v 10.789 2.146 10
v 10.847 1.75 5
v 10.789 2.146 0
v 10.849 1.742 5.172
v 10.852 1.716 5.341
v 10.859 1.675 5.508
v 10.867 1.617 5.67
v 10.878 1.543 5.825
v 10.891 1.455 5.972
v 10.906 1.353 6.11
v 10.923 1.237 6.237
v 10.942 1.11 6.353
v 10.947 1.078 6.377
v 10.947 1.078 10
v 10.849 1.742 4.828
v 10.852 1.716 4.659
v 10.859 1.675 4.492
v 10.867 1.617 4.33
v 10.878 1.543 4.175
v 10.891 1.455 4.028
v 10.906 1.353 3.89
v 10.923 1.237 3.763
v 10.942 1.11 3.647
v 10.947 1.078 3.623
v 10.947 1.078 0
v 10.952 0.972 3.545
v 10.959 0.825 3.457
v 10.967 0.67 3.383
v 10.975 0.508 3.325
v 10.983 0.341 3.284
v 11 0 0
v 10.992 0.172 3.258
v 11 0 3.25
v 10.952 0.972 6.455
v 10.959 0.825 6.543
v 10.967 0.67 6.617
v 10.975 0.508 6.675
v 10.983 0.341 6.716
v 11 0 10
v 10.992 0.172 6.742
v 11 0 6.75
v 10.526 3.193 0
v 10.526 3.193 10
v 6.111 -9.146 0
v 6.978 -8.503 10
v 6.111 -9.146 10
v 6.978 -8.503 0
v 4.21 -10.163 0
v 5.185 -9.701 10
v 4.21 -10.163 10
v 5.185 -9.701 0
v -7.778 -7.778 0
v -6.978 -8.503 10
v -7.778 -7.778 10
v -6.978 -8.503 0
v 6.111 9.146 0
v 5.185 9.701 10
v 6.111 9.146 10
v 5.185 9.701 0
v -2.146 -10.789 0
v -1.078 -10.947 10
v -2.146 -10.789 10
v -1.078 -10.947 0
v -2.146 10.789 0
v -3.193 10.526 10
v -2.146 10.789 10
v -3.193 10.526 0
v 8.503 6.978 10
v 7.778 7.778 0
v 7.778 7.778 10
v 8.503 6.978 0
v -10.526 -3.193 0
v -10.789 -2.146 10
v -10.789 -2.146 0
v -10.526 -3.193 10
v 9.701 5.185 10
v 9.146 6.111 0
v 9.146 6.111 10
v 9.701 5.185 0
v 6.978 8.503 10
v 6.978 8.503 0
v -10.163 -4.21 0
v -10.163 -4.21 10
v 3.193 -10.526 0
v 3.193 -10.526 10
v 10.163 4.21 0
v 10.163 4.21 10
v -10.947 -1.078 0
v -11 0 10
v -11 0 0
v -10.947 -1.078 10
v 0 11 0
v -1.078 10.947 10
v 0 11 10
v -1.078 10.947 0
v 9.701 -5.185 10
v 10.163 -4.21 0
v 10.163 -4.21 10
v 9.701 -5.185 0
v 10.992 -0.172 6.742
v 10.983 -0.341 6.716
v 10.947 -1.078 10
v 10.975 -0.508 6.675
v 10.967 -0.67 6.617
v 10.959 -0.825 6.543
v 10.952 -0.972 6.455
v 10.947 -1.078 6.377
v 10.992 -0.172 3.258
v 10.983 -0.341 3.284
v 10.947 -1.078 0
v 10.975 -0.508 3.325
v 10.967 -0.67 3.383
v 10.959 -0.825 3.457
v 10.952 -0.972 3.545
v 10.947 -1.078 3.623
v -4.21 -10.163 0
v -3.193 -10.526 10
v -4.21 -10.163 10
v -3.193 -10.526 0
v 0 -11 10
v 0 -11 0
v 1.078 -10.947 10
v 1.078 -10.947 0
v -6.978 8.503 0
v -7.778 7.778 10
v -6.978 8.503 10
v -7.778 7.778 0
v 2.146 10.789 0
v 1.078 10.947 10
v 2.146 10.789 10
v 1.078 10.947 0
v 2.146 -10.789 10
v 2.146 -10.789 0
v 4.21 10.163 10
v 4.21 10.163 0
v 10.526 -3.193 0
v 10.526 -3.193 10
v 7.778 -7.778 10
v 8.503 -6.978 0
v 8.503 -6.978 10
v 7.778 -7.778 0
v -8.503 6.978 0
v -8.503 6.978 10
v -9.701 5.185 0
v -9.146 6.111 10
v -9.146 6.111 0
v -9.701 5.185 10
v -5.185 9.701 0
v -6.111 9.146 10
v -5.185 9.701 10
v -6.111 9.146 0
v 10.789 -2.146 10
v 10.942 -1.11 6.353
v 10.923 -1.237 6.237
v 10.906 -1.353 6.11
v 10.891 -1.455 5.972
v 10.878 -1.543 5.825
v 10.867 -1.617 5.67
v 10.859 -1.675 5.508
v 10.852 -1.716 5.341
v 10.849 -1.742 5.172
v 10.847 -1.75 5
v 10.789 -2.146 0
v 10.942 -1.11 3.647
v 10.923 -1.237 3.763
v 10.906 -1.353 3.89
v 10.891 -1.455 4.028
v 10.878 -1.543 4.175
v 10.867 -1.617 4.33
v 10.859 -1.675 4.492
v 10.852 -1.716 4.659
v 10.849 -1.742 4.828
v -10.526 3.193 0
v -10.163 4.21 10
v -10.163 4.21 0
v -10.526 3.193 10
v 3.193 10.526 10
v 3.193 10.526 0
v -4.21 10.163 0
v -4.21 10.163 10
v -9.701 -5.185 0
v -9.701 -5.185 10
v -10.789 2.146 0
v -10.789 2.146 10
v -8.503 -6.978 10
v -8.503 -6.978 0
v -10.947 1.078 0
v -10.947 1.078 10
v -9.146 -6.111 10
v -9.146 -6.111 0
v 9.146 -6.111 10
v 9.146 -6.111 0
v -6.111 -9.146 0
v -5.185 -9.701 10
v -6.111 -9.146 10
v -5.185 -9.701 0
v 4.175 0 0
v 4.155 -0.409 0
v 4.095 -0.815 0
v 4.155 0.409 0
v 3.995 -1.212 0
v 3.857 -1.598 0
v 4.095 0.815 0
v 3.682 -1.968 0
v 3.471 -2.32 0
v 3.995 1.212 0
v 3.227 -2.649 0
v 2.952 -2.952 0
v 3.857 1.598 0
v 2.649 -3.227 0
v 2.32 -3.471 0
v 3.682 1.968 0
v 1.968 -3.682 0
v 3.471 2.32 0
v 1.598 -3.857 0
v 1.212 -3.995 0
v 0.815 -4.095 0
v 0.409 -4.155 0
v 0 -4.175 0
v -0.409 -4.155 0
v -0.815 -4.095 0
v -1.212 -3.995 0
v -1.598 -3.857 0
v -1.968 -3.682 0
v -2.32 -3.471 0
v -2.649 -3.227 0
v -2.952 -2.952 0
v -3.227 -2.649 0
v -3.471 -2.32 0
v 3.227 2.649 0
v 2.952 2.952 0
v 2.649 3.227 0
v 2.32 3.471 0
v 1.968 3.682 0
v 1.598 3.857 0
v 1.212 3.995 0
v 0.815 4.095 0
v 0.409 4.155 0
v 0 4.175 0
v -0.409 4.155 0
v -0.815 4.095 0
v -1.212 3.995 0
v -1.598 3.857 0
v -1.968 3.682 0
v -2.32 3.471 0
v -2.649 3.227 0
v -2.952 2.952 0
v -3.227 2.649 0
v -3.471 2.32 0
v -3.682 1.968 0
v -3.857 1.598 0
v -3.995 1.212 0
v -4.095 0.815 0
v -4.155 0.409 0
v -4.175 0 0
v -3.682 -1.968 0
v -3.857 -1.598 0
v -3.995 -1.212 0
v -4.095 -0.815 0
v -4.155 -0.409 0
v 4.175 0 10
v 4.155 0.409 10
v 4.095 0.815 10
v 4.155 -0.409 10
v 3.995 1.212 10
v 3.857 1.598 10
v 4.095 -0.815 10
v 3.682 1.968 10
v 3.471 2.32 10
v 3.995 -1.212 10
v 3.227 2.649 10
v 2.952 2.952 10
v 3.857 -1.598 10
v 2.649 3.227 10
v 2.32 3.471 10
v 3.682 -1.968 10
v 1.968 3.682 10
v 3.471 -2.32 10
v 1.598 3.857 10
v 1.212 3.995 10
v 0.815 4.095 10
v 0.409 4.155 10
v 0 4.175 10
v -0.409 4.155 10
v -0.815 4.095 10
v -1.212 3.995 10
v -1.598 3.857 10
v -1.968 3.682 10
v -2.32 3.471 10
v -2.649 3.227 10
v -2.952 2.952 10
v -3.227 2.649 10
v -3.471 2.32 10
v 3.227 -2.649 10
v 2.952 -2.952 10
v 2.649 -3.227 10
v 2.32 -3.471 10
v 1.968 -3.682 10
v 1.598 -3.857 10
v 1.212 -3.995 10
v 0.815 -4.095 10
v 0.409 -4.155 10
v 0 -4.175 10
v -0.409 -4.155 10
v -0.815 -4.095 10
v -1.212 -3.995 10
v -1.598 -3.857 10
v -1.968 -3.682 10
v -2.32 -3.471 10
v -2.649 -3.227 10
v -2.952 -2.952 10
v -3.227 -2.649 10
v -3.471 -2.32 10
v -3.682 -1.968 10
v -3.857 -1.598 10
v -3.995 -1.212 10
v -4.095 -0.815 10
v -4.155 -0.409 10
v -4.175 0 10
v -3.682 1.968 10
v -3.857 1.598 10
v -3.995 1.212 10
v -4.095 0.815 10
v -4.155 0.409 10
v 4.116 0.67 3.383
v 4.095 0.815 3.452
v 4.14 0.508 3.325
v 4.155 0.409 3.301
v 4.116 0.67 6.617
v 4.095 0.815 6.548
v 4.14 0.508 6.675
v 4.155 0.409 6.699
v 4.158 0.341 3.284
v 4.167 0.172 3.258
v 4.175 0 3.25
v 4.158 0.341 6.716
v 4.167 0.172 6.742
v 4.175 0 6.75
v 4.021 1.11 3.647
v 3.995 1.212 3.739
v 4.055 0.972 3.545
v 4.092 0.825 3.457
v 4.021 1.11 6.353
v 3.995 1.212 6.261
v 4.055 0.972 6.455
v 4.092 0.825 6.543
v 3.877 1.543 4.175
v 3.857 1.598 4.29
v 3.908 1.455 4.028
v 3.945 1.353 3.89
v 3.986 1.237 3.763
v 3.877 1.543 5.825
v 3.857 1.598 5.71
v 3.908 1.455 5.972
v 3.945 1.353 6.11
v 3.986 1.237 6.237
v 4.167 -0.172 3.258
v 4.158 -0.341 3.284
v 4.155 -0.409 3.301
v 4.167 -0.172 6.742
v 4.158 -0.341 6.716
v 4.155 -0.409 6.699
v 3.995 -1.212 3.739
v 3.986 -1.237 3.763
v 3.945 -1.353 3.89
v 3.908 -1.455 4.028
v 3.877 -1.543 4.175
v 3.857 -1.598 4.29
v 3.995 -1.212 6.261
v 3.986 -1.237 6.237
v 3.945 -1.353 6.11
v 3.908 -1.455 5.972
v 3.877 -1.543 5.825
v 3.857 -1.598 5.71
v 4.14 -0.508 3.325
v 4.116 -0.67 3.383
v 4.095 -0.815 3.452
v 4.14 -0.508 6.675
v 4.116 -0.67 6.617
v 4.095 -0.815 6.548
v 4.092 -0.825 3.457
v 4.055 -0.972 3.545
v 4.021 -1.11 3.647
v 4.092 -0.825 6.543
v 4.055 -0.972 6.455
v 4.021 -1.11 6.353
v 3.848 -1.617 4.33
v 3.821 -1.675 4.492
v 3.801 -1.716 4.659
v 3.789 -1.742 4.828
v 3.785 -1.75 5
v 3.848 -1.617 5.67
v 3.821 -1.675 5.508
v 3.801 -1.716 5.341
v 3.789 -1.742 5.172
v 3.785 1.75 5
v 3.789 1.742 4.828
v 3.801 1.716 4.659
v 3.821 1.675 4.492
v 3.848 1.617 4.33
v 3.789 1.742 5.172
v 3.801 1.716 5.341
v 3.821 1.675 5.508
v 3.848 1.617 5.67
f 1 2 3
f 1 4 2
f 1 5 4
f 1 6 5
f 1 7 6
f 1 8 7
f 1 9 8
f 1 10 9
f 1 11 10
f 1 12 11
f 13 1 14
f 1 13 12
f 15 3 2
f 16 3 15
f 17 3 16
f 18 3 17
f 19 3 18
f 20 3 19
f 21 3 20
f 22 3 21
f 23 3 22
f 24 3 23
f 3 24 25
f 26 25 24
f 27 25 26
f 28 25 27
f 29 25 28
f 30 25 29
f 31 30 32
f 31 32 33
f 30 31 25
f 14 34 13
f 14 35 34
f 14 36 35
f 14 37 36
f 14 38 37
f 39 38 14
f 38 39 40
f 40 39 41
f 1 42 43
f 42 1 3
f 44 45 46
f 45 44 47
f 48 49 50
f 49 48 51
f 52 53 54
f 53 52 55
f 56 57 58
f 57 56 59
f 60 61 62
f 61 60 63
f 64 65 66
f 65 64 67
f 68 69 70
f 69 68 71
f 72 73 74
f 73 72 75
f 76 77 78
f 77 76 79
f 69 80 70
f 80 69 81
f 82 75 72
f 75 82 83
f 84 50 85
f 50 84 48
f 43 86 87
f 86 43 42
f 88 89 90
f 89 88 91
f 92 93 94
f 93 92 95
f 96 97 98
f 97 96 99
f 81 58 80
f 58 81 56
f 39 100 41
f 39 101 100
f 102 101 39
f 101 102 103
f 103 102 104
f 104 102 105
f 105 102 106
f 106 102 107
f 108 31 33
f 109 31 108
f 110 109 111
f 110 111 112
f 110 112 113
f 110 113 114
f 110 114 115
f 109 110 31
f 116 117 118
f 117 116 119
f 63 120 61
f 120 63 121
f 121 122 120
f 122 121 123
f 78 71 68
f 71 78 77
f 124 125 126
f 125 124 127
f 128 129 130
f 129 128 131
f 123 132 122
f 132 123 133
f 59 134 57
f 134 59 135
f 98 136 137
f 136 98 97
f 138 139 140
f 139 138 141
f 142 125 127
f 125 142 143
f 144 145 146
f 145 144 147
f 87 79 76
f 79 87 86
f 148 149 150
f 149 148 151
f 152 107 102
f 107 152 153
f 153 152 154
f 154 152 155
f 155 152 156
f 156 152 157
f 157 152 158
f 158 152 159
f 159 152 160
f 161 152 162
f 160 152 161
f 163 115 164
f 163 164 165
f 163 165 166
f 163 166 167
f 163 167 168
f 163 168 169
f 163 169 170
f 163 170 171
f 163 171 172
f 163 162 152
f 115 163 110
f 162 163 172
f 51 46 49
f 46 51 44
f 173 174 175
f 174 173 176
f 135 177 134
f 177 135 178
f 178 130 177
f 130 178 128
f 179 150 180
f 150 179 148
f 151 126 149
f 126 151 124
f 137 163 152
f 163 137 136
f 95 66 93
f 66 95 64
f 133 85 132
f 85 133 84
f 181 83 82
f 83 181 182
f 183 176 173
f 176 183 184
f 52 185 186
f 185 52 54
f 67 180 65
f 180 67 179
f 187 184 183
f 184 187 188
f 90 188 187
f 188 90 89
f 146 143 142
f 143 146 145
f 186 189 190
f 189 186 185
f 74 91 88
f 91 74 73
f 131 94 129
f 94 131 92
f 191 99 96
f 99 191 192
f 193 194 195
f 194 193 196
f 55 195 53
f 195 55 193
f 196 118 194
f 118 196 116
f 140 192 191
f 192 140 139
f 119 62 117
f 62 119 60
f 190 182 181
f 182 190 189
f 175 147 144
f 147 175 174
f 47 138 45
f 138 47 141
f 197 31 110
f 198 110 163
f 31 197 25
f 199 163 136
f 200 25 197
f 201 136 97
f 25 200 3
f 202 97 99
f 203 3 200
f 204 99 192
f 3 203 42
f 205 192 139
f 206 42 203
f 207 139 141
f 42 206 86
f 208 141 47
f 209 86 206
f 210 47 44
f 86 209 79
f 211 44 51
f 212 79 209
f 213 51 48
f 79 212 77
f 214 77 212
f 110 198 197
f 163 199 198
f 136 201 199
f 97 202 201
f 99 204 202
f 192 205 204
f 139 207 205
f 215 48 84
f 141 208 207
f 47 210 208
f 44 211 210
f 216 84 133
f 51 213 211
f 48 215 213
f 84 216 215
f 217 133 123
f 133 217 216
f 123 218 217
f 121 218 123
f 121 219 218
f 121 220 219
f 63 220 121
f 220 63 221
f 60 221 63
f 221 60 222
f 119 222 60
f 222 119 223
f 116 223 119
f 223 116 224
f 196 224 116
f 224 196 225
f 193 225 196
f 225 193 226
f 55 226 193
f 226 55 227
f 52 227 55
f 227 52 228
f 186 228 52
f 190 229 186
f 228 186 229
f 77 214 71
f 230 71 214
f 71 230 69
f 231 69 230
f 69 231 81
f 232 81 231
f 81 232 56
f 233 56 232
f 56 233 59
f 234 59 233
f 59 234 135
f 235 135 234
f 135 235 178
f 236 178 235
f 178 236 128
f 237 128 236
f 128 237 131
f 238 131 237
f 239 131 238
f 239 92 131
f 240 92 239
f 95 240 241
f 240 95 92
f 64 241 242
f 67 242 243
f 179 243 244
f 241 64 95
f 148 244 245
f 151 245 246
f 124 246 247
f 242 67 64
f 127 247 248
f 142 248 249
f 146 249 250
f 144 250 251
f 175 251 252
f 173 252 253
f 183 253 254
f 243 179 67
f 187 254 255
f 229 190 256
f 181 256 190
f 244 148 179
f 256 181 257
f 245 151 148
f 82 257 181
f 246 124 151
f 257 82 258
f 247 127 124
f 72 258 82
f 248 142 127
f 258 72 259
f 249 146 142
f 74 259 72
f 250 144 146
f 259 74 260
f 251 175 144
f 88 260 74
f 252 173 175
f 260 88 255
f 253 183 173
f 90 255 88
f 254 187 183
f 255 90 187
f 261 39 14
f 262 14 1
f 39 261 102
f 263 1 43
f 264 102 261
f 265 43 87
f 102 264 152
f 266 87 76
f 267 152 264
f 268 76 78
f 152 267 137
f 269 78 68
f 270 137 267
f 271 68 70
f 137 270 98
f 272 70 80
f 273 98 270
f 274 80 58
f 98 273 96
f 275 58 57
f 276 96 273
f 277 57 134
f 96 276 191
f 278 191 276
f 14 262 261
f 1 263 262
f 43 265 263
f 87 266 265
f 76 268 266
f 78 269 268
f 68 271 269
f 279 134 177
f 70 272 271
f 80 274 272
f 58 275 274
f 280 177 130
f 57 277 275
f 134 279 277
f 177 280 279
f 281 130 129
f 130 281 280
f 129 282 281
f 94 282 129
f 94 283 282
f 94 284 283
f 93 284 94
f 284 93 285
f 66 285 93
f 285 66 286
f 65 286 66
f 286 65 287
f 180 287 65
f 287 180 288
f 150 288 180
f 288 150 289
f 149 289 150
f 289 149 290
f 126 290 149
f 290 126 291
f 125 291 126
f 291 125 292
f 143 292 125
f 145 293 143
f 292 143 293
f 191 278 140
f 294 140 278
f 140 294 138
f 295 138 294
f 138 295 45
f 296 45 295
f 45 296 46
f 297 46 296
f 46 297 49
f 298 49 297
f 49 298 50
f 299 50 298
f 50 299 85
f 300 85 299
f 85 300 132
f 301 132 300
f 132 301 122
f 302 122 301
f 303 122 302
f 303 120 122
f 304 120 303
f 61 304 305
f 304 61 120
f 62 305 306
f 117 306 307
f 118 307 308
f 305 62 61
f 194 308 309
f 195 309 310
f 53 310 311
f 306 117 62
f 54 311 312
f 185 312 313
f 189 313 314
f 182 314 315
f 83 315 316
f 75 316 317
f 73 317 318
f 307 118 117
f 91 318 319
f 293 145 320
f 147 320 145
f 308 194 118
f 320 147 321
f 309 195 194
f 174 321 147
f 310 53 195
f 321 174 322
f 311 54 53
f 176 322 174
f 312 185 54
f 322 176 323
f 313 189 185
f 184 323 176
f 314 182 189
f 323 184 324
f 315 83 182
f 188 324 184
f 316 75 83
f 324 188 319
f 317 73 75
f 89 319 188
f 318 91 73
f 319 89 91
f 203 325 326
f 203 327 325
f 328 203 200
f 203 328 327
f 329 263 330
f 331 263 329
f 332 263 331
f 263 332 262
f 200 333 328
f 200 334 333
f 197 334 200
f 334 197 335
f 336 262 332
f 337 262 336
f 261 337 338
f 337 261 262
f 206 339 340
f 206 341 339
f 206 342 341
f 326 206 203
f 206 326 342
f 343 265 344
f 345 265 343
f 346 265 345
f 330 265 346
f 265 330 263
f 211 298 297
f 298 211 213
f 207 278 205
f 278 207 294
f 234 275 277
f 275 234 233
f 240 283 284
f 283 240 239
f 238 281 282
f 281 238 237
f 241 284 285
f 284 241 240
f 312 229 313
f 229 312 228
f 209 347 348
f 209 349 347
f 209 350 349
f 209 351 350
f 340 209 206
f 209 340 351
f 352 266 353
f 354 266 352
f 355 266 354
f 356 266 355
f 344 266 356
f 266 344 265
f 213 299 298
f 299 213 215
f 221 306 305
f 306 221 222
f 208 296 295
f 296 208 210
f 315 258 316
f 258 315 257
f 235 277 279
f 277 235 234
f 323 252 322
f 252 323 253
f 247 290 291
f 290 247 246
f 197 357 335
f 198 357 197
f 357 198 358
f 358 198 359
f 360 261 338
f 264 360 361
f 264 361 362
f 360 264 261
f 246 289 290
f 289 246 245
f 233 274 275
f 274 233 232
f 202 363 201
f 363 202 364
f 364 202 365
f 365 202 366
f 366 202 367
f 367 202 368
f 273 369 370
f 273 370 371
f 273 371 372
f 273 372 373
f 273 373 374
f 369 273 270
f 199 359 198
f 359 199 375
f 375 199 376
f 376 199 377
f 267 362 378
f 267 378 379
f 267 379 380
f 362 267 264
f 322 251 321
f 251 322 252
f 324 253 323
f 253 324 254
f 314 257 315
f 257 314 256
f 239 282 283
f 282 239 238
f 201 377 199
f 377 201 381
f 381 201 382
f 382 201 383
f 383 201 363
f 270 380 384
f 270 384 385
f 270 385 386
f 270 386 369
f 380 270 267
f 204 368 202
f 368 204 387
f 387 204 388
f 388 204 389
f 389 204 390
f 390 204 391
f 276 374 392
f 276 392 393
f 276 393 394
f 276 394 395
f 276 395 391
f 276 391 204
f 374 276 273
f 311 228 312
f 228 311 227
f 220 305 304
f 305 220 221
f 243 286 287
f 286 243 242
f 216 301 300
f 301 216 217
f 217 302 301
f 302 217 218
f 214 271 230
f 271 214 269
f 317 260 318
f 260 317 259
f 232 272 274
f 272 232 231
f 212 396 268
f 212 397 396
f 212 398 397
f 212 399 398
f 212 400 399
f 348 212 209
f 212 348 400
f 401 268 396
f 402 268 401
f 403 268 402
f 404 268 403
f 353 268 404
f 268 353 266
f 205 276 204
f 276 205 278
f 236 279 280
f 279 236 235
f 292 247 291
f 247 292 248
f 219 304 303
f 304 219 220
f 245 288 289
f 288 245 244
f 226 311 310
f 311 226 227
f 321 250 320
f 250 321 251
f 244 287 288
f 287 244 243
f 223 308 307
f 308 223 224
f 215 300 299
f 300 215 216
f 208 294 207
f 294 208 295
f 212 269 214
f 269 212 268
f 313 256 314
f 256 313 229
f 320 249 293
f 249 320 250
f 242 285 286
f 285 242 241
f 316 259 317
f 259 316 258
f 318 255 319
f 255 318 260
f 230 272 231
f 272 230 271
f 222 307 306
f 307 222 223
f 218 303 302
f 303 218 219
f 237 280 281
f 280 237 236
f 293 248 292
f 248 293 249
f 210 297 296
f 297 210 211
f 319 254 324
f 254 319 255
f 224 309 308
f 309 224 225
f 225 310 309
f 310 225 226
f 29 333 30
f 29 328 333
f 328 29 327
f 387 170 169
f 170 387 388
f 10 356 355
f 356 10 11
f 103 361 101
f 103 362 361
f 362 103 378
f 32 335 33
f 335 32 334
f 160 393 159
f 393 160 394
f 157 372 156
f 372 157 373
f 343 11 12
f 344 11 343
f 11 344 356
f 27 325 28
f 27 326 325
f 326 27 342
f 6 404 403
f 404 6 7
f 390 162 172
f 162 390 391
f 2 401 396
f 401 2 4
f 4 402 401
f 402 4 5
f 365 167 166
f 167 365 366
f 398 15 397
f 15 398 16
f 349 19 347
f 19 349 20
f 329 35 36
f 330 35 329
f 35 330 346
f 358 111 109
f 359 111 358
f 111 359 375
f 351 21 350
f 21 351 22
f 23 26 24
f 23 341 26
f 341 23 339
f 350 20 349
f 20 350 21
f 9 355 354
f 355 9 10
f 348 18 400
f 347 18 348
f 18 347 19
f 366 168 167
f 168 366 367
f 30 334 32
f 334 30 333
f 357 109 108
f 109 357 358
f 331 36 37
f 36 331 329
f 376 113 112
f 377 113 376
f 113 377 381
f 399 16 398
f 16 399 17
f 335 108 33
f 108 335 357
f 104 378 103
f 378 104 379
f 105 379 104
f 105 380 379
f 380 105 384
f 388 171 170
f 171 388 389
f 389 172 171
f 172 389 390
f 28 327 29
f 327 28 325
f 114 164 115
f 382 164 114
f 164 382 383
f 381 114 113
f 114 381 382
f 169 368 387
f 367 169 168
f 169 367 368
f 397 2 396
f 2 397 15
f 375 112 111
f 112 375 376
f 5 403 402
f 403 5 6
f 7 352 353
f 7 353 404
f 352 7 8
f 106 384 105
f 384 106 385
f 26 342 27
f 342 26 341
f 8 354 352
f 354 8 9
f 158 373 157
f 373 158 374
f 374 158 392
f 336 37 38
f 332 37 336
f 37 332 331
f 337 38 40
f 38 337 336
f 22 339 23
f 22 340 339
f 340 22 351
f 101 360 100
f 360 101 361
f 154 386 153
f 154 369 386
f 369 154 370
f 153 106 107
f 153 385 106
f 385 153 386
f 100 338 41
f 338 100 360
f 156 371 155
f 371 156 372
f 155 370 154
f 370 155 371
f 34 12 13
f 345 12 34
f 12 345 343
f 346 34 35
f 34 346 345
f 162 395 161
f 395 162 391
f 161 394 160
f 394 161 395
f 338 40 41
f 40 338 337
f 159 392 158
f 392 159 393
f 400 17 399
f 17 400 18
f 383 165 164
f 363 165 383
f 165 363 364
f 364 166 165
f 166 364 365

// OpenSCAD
// file: parameters.scad
// =============================================================================
// Gen-S Dual-rotor ULTRA-THIN AFPM — WOUND-AWARE parameters (HARD GATE)
// Primary challenger vs Gen-P. Target m2m ≤ 7.0 while magnet↔wound ≥ 0.80.
// =============================================================================

// --- Wire / wind budget (26 AWG, ~1 lb spool ≈ 390 m bare-equiv) --------------
wire_awg            = 26;
wire_od             = 0.45;     // insulated OD mm
turns               = 130;      // +10 vs Gen-P; extra goes radial
fill                = 0.70;
layers_per_face     = 2;        // axial layers proud of EACH flange
wind_build_axial    = layers_per_face * wire_od * fill;   // 0.63 mm
wind_build_radial   = 3 * wire_od * fill;                 // 0.945 mm (extra turns)

// --- Pancake former (bare STL) — thinner web/flange than Gen-P ---------------
coil_id_r           = 24.0;     // larger window vs Gen-P 26–54
coil_od_r           = 56.0;
span_deg            = 26.0;     // 12 stations × 30° pitch
former_web          = 2.2;      // thinner than Gen-P 2.6
flange_t            = 0.8;      // thinner than Gen-P 0.9
wall                = 1.2;
slot_w              = 2.4;
mount_hole          = 3.5;
tab_len             = 7.0;

former_bare_h       = former_web + 2 * flange_t;            // 3.8 mm
coil_envelope_h     = former_bare_h + 2 * wind_build_axial; // 5.06 mm

// --- Running clearance (magnet face → WOUND face) EACH side ------------------
run_clear           = 0.80;     // PASS ≥ 0.80 preferred
gap_spacer_h        = run_clear + wind_build_axial;         // 1.43 mm
m2m                 = coil_envelope_h + 2 * run_clear;      // 6.66 mm (≤7.0 vs Gen-P 7.26)

// --- Mid stator (12 pancakes 3φ; winds proud both faces) ---------------------
coil_stations       = 12;
bay_r_in            = coil_id_r - 2.0 - wind_build_radial;
bay_r_out           = coil_od_r + 2.0 + wind_build_radial;
bay_span            = span_deg + 4.0;
bay_offset          = 2.0;
stator_thick        = former_bare_h;                        // winds proud ±Z
stator_od           = 152.0;
shaft_clear_stator  = 36.0;
coil_mount_r        = 28.0;

// --- Rotors (×2) — 8×Ø20 + 24×Ø5 Halbach each face ---------------------------
large_pocket_d      = 20.3;
small_pocket_d      = 5.3;
pocket_h            = 5.2;
large_n             = 8;
R_large             = 50.0;
R_small_inner       = 38.0;
R_small_mid         = 50.0;
R_small_outer       = 62.0;
carrier_od          = 148.0;
carrier_thick       = 7.5;
hub_h               = 10.0;
hub_od              = 30.0;
rotor_b_offset_deg  = 22.5;

// --- Modular MAX interface (Gen-E family) ------------------------------------
shaft_bore          = 8.35;
bearing_d           = 21.85;
bearing_h           = 7.2;
m3_clear            = 3.5;
bolt_r_inner        = 36.0;
bolt_n_inner        = 6;
flange_bolt_r       = 72.0;
flange_bolt_n       = 6;
brace_r             = 68.0;
brace_d             = 4.3;
brace_n             = 4;

spacer_pad_od       = 14.0;
spacer_pad_id       = m3_clear;
endbell_od          = 152.0;
endbell_thick       = 8.0;
endbell_shaft_clear = 10.0;

$fn = 64;
// main file
// Gen-S shaft collar — print ×2–4
include <parameters.scad>;
$fn = 64;
od = 22; id = shaft_bore; h = 10; set_d = 3.5;
difference() {
    cylinder(d=od, h=h);
    translate([0, 0, -0.1]) cylinder(d=id, h=h + 0.2);
    translate([0, 0, h/2]) rotate([0, 90, 0]) cylinder(d=set_d, h=od);
}
